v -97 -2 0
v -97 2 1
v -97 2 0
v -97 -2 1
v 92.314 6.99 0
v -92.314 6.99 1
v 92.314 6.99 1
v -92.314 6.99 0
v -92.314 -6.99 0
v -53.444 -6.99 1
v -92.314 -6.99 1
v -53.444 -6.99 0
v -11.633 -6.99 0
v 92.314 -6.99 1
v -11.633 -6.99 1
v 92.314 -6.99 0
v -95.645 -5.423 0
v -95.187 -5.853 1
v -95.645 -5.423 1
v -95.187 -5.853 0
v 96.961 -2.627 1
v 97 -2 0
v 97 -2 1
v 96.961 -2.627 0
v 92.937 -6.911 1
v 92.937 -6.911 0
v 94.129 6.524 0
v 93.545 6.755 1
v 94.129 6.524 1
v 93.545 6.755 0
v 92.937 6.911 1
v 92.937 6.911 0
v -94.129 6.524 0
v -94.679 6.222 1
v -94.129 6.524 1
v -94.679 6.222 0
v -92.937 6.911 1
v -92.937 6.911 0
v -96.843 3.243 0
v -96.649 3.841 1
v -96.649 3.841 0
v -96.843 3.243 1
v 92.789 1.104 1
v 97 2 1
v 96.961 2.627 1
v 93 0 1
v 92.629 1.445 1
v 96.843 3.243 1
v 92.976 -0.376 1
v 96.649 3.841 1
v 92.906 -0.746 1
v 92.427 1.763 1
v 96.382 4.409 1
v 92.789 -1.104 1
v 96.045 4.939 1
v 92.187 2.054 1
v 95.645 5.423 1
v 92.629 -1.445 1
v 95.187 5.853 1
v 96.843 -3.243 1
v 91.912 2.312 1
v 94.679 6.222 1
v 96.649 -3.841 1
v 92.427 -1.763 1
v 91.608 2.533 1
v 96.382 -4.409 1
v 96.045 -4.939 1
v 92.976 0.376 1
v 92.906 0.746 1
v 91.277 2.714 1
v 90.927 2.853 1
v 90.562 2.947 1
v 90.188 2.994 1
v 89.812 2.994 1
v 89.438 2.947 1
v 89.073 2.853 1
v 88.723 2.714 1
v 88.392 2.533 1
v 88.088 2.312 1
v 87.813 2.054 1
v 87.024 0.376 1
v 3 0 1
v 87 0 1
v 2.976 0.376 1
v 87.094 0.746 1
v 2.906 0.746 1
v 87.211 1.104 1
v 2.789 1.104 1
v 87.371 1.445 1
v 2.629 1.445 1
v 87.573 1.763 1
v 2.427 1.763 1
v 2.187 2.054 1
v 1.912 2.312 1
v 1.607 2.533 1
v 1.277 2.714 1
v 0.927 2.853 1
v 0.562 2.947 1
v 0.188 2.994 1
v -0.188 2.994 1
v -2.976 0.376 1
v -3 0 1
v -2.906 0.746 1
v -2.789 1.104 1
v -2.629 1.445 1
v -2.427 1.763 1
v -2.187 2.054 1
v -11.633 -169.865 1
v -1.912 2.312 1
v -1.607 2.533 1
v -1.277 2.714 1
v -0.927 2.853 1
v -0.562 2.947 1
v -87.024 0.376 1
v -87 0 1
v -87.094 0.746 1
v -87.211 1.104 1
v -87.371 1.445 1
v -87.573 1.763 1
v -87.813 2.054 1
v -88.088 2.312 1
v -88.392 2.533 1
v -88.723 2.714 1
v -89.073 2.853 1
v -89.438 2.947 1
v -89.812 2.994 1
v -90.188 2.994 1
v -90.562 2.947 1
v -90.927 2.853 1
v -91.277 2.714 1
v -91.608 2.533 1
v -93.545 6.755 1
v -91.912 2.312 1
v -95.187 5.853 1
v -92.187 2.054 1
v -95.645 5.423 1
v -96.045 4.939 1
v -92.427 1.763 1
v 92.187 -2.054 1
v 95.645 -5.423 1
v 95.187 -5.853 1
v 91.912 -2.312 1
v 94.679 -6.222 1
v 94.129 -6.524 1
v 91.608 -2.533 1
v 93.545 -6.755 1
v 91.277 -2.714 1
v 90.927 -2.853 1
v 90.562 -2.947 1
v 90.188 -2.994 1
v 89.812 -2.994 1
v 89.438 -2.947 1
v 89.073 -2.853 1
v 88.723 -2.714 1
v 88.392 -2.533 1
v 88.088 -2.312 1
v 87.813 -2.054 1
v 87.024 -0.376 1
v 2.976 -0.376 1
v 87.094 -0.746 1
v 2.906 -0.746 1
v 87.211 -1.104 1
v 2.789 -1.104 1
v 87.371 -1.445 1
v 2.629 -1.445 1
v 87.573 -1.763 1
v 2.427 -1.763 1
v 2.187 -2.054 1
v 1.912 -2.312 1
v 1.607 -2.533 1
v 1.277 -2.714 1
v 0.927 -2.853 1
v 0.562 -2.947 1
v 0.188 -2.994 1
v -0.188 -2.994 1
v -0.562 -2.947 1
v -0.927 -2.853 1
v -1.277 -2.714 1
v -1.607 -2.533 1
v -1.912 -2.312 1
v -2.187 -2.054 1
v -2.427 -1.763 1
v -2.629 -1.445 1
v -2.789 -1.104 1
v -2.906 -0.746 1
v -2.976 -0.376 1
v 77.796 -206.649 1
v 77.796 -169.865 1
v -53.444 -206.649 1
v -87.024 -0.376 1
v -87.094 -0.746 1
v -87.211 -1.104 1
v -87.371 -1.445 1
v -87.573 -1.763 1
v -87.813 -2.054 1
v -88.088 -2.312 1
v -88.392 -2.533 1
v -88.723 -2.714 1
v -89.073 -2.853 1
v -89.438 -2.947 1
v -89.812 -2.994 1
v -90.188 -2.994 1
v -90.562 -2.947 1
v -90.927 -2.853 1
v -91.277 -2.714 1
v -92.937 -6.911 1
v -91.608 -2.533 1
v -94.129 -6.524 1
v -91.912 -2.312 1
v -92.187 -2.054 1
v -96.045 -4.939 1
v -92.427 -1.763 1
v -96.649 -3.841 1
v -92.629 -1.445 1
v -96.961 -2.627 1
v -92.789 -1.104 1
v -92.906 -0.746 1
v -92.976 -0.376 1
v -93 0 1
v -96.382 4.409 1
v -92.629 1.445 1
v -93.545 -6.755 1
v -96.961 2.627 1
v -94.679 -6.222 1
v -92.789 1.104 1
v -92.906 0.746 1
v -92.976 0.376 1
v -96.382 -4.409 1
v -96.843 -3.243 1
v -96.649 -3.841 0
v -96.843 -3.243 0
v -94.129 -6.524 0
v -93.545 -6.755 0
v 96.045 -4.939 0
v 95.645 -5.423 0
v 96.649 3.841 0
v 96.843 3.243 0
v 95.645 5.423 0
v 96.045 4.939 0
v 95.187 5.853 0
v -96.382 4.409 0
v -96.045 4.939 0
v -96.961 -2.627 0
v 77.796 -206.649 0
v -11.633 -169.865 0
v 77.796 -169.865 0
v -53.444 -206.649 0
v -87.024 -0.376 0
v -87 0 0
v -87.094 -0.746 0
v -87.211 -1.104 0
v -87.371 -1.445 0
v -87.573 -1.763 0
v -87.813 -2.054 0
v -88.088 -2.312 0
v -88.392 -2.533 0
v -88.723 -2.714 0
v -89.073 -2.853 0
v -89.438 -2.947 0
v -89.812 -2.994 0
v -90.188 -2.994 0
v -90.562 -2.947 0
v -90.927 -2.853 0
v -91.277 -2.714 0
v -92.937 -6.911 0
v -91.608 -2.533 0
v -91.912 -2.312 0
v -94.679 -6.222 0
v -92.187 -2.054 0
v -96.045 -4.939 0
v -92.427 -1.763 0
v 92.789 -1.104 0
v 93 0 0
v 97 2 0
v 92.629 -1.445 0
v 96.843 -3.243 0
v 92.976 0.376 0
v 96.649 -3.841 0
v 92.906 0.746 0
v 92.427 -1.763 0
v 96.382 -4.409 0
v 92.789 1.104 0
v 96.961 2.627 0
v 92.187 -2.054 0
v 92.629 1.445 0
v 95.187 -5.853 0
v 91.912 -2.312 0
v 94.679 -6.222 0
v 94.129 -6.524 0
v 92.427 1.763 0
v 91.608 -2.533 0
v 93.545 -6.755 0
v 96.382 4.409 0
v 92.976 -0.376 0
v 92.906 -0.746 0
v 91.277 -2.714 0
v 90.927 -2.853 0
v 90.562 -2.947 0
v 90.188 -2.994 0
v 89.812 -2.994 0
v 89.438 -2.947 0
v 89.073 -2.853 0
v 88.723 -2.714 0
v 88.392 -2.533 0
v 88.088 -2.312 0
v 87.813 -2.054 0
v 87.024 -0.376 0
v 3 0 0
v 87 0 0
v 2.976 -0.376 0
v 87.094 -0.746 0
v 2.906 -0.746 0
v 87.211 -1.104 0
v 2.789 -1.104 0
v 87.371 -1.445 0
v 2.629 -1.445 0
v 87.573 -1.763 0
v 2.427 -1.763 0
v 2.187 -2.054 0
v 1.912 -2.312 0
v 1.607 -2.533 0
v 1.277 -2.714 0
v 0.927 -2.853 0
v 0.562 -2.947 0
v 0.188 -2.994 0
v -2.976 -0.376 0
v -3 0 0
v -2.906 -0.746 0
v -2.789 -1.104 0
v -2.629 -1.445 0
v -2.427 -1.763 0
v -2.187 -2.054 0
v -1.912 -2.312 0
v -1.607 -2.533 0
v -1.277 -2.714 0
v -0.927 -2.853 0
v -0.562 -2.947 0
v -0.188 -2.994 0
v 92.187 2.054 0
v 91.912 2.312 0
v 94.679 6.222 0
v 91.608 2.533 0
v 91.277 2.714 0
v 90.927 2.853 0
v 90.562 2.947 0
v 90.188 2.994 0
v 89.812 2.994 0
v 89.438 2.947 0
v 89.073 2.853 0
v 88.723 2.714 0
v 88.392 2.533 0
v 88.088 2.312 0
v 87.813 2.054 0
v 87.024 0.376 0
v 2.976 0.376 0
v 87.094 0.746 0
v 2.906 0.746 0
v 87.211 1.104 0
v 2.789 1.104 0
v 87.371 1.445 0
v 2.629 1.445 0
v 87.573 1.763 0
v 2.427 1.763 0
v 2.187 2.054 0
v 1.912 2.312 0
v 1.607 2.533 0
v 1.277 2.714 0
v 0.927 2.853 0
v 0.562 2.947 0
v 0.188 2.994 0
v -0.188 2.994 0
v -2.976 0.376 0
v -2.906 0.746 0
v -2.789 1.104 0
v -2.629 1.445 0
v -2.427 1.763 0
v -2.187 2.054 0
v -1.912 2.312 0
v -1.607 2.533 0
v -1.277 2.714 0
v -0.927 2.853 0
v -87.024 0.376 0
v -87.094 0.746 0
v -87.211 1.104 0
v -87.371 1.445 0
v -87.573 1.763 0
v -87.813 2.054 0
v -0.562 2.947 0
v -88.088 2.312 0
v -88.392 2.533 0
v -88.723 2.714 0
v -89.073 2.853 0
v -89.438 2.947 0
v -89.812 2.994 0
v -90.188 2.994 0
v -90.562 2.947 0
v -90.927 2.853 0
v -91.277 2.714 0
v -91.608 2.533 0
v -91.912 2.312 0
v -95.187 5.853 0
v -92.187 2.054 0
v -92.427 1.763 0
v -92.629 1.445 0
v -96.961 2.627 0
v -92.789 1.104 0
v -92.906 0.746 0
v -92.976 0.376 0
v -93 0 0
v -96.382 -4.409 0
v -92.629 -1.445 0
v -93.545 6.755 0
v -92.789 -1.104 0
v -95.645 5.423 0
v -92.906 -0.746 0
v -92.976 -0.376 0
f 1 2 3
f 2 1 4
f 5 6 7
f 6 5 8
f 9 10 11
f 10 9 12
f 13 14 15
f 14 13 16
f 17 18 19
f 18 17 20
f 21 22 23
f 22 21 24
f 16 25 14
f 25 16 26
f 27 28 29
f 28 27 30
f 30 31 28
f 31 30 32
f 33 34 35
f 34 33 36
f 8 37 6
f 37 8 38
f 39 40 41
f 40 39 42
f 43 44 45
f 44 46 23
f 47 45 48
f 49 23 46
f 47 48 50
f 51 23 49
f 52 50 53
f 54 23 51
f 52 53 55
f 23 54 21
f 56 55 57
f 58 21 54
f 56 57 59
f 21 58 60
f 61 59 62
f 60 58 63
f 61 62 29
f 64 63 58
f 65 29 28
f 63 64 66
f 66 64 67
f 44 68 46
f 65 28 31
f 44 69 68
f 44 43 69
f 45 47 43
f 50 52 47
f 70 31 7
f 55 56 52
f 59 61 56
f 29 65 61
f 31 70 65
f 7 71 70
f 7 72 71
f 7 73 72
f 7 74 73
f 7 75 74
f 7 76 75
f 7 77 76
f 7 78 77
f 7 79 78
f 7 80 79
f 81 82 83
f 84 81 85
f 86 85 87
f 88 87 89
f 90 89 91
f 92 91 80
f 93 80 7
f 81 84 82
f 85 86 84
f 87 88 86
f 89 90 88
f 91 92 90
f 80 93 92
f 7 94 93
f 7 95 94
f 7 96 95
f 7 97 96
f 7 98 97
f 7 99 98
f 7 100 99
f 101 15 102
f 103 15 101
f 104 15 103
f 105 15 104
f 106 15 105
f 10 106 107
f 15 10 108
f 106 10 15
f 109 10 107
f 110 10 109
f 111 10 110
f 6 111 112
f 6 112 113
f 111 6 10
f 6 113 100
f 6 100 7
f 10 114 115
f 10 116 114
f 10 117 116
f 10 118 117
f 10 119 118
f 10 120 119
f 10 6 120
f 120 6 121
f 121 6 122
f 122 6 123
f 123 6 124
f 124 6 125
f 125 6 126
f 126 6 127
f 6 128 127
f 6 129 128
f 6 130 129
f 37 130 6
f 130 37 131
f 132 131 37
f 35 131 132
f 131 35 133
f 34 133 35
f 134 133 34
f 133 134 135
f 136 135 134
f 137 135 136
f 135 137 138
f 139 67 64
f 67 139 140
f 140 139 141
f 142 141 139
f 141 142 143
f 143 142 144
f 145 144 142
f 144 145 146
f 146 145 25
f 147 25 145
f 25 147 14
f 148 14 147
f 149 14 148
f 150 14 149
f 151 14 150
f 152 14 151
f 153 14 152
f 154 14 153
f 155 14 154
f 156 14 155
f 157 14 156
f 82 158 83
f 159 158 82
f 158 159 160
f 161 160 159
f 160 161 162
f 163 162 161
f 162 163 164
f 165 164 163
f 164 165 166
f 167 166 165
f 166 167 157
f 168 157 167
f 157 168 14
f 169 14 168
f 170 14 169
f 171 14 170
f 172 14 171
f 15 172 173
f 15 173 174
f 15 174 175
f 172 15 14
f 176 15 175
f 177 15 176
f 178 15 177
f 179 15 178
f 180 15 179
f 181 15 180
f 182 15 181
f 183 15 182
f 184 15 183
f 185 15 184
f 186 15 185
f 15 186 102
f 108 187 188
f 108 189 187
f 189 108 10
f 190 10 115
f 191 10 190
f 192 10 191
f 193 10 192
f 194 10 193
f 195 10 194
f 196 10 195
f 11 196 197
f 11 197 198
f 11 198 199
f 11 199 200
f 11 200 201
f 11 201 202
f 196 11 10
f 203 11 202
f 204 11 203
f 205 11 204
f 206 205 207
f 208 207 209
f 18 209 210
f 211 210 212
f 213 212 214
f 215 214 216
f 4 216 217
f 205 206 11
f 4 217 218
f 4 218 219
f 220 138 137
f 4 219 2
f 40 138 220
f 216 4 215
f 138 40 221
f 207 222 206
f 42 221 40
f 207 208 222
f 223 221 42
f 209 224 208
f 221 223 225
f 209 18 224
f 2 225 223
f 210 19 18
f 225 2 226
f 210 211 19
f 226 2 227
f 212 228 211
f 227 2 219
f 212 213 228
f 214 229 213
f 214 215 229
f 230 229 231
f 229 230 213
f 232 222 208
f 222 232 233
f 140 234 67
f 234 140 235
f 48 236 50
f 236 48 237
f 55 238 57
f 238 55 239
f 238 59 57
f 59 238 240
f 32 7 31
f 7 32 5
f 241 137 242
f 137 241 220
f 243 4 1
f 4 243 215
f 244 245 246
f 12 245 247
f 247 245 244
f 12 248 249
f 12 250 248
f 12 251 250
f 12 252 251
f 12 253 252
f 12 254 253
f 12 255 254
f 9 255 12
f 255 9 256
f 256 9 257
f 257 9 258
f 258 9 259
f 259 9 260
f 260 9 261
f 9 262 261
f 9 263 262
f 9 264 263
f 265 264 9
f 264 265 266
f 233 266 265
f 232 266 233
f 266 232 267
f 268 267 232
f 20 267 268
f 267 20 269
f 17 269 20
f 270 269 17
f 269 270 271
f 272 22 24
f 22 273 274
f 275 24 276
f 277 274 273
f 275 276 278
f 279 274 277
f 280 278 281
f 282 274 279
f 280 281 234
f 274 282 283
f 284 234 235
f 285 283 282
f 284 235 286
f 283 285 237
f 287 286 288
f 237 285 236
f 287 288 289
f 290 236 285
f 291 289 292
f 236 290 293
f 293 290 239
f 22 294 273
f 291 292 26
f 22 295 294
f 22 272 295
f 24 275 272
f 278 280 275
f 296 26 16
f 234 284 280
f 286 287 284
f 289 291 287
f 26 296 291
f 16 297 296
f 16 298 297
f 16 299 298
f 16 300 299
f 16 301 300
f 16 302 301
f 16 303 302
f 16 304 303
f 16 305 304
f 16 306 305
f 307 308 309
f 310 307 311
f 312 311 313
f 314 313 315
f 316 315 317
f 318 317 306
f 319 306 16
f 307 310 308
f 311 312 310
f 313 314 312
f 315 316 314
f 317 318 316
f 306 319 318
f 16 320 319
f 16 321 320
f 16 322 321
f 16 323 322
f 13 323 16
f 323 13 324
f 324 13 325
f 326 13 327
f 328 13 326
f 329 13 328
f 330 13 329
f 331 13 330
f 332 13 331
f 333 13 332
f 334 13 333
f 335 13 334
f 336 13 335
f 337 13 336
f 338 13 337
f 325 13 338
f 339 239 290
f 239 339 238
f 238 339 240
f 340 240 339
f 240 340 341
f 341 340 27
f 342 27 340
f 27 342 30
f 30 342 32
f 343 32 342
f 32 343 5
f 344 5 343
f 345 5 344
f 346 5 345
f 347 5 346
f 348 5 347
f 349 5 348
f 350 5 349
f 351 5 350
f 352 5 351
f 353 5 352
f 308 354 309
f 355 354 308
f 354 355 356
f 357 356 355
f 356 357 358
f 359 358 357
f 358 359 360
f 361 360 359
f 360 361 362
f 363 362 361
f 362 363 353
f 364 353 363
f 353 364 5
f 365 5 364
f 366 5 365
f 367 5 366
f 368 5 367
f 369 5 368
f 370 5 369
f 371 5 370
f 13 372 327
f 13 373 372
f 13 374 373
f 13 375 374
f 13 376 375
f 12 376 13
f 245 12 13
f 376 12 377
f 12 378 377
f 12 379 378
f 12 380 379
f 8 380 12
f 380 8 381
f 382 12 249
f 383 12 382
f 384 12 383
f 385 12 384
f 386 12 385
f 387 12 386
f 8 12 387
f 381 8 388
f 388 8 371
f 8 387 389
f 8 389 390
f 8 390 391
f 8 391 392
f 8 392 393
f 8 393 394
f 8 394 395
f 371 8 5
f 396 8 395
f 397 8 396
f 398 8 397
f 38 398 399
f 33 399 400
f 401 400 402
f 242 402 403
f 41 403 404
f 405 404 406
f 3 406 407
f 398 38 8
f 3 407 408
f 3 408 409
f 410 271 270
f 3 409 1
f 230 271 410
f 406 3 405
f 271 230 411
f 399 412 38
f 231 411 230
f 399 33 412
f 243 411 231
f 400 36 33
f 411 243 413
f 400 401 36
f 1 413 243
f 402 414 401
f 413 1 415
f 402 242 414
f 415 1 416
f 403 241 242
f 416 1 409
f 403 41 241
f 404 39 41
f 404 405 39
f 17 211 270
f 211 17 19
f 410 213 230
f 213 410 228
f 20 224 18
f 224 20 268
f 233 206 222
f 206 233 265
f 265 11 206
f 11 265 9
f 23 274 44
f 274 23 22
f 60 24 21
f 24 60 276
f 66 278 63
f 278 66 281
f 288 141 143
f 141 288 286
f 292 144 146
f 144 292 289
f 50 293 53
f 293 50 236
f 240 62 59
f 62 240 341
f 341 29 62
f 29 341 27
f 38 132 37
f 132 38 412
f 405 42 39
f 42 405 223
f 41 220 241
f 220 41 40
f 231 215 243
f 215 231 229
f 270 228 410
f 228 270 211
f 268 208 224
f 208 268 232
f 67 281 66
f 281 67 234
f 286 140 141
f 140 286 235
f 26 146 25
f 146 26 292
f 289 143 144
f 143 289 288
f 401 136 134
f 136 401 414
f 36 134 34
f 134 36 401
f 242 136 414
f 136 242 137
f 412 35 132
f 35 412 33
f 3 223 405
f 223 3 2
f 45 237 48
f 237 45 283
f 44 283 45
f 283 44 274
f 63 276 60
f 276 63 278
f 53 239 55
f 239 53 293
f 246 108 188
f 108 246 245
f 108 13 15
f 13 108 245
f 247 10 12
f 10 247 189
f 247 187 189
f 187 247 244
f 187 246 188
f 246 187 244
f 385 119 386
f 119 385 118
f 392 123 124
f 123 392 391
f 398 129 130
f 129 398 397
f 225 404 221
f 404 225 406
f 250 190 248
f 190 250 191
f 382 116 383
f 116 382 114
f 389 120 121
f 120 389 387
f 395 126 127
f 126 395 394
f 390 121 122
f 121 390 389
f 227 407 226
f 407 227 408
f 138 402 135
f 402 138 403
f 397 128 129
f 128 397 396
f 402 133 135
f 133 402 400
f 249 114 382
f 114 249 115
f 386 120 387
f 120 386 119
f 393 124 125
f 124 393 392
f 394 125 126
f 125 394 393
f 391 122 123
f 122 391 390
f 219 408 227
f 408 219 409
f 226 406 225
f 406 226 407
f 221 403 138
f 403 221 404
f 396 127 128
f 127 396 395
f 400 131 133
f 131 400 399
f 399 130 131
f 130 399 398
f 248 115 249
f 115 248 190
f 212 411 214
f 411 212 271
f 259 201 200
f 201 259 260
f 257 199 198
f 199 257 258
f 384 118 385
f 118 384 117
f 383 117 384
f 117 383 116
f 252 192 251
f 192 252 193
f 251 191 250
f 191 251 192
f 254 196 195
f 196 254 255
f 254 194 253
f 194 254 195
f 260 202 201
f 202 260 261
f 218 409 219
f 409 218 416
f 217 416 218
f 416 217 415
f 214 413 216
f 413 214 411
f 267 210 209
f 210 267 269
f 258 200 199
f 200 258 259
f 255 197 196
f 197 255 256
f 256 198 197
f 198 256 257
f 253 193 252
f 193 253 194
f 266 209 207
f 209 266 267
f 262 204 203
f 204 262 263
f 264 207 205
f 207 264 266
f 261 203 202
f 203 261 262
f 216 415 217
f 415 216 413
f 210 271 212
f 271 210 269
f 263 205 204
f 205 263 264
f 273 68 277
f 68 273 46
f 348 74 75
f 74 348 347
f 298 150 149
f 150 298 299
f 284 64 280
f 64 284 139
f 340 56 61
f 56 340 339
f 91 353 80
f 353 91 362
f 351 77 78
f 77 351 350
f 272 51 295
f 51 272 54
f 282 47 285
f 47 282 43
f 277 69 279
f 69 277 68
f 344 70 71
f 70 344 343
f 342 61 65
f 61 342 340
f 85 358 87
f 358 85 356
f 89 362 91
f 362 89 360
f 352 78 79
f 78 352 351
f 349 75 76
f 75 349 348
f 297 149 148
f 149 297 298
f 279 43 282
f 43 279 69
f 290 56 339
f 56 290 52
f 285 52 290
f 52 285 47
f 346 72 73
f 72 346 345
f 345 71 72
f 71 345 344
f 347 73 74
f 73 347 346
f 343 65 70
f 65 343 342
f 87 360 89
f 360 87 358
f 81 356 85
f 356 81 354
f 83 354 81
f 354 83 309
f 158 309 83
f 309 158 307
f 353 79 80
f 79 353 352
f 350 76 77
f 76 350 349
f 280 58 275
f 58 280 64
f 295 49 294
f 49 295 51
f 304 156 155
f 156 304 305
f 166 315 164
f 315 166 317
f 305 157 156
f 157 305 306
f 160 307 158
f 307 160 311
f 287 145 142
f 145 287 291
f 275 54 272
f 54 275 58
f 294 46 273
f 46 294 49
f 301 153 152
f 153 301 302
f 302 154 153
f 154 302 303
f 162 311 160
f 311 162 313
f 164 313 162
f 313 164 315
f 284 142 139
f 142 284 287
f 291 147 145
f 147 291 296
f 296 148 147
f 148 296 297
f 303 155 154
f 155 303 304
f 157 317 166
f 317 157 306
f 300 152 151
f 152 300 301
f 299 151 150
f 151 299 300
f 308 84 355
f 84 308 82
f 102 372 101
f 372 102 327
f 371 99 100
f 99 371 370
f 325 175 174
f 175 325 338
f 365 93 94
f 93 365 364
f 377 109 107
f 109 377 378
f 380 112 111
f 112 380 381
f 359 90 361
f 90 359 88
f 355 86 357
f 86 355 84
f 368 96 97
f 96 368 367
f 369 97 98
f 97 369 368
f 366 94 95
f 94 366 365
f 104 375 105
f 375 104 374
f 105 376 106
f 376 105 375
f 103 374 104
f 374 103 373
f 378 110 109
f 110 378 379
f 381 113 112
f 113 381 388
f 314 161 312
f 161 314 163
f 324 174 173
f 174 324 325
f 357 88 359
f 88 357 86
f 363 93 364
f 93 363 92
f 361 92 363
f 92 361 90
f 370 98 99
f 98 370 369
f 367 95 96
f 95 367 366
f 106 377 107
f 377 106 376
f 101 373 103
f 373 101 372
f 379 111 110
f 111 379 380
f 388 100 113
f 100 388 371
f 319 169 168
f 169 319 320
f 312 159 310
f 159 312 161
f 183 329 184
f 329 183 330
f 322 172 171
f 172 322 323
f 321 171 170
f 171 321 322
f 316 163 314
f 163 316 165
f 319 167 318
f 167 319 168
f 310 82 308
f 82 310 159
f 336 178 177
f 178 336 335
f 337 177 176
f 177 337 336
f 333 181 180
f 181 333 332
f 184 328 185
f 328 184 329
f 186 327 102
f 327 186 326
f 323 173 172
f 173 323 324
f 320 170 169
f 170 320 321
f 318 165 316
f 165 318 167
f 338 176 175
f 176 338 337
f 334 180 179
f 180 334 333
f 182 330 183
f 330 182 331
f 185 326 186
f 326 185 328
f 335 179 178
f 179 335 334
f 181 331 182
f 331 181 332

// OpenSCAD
$fn = 50;


difference() {
	union() {
		translate(v = [0, 0, 0]) {
			rotate(a = [0, 0, 0]) {
				hull() {
					translate(v = [-92.0000000000, 2.0000000000, 0]) {
						rotate(a = [0, 0, 0]) {
							translate(v = [0, 0, 0]) {
								rotate(a = [0, 0, 0]) {
									cylinder(h = 1, r = 5);
								}
							}
						}
					}
					translate(v = [92.0000000000, 2.0000000000, 0]) {
						rotate(a = [0, 0, 0]) {
							translate(v = [0, 0, 0]) {
								rotate(a = [0, 0, 0]) {
									cylinder(h = 1, r = 5);
								}
							}
						}
					}
					translate(v = [-92.0000000000, -2.0000000000, 0]) {
						rotate(a = [0, 0, 0]) {
							translate(v = [0, 0, 0]) {
								rotate(a = [0, 0, 0]) {
									cylinder(h = 1, r = 5);
								}
							}
						}
					}
					translate(v = [92.0000000000, -2.0000000000, 0]) {
						rotate(a = [0, 0, 0]) {
							translate(v = [0, 0, 0]) {
								rotate(a = [0, 0, 0]) {
									cylinder(h = 1, r = 5);
								}
							}
						}
					}
				}
			}
		}
		translate(v = [0, 0, 0]) {
			rotate(a = [0, 0, 0]) {
				linear_extrude(height = 1) {
					text(font = "DejaVu Sans Mono:style=Bold", halign = "center", size = 209.0000000000, text = "L", valign = "top");
				}
			}
		}
	}
	union() {
		translate(v = [-90.0000000000, 0.0000000000, -125.0000000000]) {
			rotate(a = [0, 0, 0]) {
				cylinder(h = 250, r = 3.0000000000);
			}
		}
		translate(v = [90.0000000000, 0.0000000000, -125.0000000000]) {
			rotate(a = [0, 0, 0]) {
				cylinder(h = 250, r = 3.0000000000);
			}
		}
		translate(v = [90.0000000000, 0.0000000000, -125.0000000000]) {
			rotate(a = [0, 0, 0]) {
				cylinder(h = 250, r = 3.0000000000);
			}
		}
		translate(v = [0, 0, -125.0000000000]) {
			rotate(a = [0, 0, 0]) {
				cylinder(h = 250, r = 3.0000000000);
			}
		}
	}
}
